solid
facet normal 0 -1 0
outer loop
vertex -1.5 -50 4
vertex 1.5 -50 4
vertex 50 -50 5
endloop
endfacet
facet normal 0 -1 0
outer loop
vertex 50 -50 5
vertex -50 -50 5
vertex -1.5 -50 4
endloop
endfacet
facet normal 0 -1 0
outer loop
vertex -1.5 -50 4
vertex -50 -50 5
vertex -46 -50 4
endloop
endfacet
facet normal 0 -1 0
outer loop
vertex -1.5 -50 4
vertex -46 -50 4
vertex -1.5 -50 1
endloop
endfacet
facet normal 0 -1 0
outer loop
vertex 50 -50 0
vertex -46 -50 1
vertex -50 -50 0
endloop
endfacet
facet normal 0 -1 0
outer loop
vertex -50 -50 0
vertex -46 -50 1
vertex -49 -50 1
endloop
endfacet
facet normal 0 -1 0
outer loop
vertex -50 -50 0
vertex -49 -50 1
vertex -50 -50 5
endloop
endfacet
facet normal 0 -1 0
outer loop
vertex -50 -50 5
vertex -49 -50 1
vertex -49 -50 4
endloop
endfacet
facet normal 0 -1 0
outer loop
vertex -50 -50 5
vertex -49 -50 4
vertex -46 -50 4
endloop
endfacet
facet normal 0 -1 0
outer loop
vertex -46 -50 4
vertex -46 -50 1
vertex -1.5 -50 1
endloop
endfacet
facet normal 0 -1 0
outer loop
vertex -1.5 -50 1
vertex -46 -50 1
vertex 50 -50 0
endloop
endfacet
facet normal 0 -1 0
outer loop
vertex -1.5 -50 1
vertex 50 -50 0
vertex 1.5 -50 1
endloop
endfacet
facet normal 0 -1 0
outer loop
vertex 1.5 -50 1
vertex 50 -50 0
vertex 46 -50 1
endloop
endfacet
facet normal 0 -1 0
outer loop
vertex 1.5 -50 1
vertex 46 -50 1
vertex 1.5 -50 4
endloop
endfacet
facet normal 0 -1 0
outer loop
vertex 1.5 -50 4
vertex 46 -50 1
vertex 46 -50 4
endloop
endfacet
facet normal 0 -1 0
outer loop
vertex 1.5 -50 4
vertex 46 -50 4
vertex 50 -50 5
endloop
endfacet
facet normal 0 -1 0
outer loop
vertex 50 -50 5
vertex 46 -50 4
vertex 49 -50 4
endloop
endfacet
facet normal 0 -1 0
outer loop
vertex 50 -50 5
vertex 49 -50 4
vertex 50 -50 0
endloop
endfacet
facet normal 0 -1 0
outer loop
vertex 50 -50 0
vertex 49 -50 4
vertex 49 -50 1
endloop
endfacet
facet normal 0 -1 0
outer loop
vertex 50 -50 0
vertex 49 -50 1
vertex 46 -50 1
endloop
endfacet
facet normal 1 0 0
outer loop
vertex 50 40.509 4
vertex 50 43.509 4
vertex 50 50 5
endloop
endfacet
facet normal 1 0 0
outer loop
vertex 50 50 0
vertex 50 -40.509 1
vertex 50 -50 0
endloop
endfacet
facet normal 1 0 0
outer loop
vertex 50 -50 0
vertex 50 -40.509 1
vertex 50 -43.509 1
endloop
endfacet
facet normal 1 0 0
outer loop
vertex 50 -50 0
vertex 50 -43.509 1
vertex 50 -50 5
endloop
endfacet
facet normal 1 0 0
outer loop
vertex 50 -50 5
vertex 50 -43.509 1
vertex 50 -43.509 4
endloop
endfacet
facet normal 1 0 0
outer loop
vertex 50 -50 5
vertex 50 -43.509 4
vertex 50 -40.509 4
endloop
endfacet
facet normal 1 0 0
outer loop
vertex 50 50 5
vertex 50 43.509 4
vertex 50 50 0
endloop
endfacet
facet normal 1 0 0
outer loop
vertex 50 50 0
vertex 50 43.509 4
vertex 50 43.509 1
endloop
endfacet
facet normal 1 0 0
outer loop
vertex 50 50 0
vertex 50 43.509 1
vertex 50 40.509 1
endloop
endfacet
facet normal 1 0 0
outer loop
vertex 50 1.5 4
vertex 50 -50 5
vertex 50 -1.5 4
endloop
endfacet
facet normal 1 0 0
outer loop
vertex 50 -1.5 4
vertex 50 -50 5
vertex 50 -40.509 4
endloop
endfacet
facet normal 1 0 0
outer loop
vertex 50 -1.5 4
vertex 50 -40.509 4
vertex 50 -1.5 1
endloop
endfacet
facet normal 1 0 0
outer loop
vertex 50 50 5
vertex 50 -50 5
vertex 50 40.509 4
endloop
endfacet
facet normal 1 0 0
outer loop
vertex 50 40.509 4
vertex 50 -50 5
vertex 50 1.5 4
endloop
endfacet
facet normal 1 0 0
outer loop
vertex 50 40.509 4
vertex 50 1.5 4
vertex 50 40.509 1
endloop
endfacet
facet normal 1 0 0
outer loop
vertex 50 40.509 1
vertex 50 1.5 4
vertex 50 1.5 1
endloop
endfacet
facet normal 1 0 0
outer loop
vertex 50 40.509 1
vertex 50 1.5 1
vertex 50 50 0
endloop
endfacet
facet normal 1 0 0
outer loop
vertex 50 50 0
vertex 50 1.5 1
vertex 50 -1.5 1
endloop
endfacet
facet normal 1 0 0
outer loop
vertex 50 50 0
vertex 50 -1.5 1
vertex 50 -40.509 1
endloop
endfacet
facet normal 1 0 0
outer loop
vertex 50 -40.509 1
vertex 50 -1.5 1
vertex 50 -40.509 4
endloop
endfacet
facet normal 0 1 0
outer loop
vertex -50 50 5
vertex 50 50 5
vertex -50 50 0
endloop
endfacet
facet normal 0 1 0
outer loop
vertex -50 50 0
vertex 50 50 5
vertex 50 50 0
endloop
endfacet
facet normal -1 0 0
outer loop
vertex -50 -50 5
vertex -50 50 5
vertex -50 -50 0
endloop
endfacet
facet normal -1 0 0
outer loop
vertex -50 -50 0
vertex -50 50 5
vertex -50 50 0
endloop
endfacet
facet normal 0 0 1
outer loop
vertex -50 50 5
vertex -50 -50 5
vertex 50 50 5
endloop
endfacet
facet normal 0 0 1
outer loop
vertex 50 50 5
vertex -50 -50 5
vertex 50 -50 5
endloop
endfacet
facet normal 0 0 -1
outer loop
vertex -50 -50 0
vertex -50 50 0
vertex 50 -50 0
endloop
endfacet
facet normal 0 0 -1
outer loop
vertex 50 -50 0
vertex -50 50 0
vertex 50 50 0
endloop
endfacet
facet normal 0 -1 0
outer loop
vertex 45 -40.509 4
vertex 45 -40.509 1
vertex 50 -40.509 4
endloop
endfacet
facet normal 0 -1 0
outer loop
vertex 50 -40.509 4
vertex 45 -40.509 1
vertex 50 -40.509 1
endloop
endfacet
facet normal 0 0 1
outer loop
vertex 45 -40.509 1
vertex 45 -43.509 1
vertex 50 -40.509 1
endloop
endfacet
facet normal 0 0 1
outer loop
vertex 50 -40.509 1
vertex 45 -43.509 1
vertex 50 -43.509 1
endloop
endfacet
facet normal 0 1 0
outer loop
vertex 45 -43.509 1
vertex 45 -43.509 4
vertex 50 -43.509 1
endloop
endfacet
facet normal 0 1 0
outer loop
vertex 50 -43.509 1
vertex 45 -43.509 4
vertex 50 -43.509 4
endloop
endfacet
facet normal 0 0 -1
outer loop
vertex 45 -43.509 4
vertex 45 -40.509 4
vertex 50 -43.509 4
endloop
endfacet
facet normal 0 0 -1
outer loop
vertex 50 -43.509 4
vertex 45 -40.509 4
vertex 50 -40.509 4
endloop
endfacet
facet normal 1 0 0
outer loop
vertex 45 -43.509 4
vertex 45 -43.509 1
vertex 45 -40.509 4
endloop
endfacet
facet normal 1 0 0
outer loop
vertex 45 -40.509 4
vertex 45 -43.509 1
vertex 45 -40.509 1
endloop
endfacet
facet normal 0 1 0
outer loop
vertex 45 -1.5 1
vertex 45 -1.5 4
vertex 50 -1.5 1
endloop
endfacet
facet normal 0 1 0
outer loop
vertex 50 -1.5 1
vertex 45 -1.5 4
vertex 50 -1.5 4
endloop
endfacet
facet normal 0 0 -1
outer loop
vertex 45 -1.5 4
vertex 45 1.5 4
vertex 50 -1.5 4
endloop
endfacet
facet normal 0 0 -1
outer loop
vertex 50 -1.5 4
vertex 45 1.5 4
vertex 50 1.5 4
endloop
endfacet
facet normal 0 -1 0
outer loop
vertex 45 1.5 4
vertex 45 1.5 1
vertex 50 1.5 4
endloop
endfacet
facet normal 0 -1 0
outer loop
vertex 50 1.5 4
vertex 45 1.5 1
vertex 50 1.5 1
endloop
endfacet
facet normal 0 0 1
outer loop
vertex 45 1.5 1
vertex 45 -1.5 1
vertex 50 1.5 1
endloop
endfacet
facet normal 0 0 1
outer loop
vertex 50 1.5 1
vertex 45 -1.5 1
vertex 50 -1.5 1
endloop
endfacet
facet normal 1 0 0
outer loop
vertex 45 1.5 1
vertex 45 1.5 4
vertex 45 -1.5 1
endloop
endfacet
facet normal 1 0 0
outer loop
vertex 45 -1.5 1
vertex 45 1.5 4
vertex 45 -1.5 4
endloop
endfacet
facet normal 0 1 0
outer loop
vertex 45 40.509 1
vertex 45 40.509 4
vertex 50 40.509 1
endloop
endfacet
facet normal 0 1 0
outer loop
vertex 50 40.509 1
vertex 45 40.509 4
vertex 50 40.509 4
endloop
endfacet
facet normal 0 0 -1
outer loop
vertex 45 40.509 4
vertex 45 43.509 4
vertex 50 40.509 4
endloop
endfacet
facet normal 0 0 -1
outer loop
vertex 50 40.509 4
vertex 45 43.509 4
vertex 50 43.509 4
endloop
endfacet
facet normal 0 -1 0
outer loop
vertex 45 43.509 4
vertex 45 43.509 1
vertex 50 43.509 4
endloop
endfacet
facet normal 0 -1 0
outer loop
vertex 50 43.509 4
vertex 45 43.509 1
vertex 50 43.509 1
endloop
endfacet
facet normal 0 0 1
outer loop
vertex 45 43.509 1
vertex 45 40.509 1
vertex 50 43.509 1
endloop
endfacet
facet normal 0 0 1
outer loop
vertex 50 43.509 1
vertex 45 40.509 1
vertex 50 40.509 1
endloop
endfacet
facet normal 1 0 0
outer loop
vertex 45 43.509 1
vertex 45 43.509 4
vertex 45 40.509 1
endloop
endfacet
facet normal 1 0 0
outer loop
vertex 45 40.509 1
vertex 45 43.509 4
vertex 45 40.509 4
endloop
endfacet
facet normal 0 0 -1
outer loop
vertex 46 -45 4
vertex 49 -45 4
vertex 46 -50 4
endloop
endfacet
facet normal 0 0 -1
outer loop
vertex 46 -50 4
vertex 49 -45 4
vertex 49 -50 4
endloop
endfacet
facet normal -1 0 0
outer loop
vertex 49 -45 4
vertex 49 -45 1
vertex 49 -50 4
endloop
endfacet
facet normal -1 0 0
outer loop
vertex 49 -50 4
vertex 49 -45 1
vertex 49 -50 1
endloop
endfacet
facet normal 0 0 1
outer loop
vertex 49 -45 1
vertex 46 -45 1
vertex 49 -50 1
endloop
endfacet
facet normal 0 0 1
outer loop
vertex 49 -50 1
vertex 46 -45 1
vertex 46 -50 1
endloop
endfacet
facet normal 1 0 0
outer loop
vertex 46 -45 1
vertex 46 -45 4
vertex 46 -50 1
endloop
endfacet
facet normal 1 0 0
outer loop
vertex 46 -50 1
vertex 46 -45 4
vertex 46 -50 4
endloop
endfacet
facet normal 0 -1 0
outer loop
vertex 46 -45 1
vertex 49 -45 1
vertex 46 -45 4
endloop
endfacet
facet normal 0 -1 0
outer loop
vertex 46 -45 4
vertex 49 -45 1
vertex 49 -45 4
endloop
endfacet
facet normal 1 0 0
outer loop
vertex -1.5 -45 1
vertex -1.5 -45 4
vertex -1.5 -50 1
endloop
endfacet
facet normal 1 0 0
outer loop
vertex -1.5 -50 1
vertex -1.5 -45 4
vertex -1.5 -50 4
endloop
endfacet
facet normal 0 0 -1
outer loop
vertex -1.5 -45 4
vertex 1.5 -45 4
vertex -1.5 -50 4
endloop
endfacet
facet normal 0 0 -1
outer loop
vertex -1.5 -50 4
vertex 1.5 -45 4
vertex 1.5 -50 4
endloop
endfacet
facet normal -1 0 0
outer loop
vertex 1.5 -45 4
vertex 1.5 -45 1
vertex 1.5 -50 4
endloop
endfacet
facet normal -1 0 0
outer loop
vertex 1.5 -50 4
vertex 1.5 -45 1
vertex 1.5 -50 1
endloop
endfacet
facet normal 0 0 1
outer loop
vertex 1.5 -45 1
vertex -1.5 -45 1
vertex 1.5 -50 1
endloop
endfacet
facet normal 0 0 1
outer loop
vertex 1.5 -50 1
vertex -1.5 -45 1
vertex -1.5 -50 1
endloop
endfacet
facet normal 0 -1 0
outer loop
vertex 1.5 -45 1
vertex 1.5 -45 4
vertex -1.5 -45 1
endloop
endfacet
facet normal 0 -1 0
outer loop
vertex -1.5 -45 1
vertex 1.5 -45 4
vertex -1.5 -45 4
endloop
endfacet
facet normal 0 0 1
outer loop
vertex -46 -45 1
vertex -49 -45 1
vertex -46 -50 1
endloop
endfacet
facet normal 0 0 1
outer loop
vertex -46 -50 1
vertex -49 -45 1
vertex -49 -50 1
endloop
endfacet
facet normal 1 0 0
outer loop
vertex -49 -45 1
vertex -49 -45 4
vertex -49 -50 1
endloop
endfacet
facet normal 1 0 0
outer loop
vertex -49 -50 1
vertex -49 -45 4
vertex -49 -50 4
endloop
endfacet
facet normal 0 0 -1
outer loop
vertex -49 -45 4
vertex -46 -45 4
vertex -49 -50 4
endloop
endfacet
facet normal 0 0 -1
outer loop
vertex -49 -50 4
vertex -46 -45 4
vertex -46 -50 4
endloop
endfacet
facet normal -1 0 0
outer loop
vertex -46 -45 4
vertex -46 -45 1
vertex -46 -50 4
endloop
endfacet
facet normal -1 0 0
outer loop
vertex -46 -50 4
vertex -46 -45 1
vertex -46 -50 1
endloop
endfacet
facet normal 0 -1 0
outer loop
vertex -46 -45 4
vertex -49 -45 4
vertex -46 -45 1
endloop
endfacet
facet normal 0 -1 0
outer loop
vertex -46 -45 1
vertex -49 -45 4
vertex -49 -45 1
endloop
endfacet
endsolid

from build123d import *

# Parameters (mm, degrees)
SKETCH2_W           = 100
SKETCH2_H           = 100
BOSS_EXTRUDE1_DEPTH = 5
SKETCH3_W           = 1.5
SKETCH3_H           = 3
SKETCH3_W_2         = 3
SKETCH3_H_2         = 1.5
CUT_EXTRUDE1_DEPTH  = 5
SKETCH6_W           = 3
SKETCH6_H           = 3
CUT_EXTRUDE2_DEPTH  = 5


with BuildPart() as part:
    # Sketch2 → Boss-Extrude1 (new body)
    with BuildSketch(Plane.XY):
        Rectangle(SKETCH2_W, SKETCH2_H)
    extrude(amount=BOSS_EXTRUDE1_DEPTH)

    # Sketch3 → Cut-Extrude1 (cut)
    with BuildSketch(Plane(origin=(50, 0, 0), x_dir=(0, 0, -1), z_dir=(1, 0, 0))):
        with Locations((-1.75, 42.009272938)):
            Rectangle(SKETCH3_W, SKETCH3_H)
        with Locations((-3.25, 42.009272938)):
            Rectangle(SKETCH3_W, SKETCH3_H)
        with Locations((-2.5, -0.75)):
            Rectangle(SKETCH3_W_2, SKETCH3_H_2)
        with Locations((-2.5, 0.75)):
            Rectangle(SKETCH3_W_2, SKETCH3_H_2)
        with Locations((-2.5, -42.009272938)):
            Rectangle(SKETCH3_W_2, SKETCH3_H)
    extrude(amount=-CUT_EXTRUDE1_DEPTH, mode=Mode.SUBTRACT)

    # Sketch6 → Cut-Extrude2 (cut)
    with BuildSketch(Plane.XZ.offset(50)):
        with Locations((-47.5, 2.5)):
            Rectangle(SKETCH6_W, SKETCH6_H)
        with Locations((47.5, 2.5)):
            Rectangle(SKETCH6_W, SKETCH6_H)
        with Locations((0, 2.5)):
            Rectangle(SKETCH6_W, SKETCH6_H)
    extrude(amount=-CUT_EXTRUDE2_DEPTH, mode=Mode.SUBTRACT)


solid = part.part
